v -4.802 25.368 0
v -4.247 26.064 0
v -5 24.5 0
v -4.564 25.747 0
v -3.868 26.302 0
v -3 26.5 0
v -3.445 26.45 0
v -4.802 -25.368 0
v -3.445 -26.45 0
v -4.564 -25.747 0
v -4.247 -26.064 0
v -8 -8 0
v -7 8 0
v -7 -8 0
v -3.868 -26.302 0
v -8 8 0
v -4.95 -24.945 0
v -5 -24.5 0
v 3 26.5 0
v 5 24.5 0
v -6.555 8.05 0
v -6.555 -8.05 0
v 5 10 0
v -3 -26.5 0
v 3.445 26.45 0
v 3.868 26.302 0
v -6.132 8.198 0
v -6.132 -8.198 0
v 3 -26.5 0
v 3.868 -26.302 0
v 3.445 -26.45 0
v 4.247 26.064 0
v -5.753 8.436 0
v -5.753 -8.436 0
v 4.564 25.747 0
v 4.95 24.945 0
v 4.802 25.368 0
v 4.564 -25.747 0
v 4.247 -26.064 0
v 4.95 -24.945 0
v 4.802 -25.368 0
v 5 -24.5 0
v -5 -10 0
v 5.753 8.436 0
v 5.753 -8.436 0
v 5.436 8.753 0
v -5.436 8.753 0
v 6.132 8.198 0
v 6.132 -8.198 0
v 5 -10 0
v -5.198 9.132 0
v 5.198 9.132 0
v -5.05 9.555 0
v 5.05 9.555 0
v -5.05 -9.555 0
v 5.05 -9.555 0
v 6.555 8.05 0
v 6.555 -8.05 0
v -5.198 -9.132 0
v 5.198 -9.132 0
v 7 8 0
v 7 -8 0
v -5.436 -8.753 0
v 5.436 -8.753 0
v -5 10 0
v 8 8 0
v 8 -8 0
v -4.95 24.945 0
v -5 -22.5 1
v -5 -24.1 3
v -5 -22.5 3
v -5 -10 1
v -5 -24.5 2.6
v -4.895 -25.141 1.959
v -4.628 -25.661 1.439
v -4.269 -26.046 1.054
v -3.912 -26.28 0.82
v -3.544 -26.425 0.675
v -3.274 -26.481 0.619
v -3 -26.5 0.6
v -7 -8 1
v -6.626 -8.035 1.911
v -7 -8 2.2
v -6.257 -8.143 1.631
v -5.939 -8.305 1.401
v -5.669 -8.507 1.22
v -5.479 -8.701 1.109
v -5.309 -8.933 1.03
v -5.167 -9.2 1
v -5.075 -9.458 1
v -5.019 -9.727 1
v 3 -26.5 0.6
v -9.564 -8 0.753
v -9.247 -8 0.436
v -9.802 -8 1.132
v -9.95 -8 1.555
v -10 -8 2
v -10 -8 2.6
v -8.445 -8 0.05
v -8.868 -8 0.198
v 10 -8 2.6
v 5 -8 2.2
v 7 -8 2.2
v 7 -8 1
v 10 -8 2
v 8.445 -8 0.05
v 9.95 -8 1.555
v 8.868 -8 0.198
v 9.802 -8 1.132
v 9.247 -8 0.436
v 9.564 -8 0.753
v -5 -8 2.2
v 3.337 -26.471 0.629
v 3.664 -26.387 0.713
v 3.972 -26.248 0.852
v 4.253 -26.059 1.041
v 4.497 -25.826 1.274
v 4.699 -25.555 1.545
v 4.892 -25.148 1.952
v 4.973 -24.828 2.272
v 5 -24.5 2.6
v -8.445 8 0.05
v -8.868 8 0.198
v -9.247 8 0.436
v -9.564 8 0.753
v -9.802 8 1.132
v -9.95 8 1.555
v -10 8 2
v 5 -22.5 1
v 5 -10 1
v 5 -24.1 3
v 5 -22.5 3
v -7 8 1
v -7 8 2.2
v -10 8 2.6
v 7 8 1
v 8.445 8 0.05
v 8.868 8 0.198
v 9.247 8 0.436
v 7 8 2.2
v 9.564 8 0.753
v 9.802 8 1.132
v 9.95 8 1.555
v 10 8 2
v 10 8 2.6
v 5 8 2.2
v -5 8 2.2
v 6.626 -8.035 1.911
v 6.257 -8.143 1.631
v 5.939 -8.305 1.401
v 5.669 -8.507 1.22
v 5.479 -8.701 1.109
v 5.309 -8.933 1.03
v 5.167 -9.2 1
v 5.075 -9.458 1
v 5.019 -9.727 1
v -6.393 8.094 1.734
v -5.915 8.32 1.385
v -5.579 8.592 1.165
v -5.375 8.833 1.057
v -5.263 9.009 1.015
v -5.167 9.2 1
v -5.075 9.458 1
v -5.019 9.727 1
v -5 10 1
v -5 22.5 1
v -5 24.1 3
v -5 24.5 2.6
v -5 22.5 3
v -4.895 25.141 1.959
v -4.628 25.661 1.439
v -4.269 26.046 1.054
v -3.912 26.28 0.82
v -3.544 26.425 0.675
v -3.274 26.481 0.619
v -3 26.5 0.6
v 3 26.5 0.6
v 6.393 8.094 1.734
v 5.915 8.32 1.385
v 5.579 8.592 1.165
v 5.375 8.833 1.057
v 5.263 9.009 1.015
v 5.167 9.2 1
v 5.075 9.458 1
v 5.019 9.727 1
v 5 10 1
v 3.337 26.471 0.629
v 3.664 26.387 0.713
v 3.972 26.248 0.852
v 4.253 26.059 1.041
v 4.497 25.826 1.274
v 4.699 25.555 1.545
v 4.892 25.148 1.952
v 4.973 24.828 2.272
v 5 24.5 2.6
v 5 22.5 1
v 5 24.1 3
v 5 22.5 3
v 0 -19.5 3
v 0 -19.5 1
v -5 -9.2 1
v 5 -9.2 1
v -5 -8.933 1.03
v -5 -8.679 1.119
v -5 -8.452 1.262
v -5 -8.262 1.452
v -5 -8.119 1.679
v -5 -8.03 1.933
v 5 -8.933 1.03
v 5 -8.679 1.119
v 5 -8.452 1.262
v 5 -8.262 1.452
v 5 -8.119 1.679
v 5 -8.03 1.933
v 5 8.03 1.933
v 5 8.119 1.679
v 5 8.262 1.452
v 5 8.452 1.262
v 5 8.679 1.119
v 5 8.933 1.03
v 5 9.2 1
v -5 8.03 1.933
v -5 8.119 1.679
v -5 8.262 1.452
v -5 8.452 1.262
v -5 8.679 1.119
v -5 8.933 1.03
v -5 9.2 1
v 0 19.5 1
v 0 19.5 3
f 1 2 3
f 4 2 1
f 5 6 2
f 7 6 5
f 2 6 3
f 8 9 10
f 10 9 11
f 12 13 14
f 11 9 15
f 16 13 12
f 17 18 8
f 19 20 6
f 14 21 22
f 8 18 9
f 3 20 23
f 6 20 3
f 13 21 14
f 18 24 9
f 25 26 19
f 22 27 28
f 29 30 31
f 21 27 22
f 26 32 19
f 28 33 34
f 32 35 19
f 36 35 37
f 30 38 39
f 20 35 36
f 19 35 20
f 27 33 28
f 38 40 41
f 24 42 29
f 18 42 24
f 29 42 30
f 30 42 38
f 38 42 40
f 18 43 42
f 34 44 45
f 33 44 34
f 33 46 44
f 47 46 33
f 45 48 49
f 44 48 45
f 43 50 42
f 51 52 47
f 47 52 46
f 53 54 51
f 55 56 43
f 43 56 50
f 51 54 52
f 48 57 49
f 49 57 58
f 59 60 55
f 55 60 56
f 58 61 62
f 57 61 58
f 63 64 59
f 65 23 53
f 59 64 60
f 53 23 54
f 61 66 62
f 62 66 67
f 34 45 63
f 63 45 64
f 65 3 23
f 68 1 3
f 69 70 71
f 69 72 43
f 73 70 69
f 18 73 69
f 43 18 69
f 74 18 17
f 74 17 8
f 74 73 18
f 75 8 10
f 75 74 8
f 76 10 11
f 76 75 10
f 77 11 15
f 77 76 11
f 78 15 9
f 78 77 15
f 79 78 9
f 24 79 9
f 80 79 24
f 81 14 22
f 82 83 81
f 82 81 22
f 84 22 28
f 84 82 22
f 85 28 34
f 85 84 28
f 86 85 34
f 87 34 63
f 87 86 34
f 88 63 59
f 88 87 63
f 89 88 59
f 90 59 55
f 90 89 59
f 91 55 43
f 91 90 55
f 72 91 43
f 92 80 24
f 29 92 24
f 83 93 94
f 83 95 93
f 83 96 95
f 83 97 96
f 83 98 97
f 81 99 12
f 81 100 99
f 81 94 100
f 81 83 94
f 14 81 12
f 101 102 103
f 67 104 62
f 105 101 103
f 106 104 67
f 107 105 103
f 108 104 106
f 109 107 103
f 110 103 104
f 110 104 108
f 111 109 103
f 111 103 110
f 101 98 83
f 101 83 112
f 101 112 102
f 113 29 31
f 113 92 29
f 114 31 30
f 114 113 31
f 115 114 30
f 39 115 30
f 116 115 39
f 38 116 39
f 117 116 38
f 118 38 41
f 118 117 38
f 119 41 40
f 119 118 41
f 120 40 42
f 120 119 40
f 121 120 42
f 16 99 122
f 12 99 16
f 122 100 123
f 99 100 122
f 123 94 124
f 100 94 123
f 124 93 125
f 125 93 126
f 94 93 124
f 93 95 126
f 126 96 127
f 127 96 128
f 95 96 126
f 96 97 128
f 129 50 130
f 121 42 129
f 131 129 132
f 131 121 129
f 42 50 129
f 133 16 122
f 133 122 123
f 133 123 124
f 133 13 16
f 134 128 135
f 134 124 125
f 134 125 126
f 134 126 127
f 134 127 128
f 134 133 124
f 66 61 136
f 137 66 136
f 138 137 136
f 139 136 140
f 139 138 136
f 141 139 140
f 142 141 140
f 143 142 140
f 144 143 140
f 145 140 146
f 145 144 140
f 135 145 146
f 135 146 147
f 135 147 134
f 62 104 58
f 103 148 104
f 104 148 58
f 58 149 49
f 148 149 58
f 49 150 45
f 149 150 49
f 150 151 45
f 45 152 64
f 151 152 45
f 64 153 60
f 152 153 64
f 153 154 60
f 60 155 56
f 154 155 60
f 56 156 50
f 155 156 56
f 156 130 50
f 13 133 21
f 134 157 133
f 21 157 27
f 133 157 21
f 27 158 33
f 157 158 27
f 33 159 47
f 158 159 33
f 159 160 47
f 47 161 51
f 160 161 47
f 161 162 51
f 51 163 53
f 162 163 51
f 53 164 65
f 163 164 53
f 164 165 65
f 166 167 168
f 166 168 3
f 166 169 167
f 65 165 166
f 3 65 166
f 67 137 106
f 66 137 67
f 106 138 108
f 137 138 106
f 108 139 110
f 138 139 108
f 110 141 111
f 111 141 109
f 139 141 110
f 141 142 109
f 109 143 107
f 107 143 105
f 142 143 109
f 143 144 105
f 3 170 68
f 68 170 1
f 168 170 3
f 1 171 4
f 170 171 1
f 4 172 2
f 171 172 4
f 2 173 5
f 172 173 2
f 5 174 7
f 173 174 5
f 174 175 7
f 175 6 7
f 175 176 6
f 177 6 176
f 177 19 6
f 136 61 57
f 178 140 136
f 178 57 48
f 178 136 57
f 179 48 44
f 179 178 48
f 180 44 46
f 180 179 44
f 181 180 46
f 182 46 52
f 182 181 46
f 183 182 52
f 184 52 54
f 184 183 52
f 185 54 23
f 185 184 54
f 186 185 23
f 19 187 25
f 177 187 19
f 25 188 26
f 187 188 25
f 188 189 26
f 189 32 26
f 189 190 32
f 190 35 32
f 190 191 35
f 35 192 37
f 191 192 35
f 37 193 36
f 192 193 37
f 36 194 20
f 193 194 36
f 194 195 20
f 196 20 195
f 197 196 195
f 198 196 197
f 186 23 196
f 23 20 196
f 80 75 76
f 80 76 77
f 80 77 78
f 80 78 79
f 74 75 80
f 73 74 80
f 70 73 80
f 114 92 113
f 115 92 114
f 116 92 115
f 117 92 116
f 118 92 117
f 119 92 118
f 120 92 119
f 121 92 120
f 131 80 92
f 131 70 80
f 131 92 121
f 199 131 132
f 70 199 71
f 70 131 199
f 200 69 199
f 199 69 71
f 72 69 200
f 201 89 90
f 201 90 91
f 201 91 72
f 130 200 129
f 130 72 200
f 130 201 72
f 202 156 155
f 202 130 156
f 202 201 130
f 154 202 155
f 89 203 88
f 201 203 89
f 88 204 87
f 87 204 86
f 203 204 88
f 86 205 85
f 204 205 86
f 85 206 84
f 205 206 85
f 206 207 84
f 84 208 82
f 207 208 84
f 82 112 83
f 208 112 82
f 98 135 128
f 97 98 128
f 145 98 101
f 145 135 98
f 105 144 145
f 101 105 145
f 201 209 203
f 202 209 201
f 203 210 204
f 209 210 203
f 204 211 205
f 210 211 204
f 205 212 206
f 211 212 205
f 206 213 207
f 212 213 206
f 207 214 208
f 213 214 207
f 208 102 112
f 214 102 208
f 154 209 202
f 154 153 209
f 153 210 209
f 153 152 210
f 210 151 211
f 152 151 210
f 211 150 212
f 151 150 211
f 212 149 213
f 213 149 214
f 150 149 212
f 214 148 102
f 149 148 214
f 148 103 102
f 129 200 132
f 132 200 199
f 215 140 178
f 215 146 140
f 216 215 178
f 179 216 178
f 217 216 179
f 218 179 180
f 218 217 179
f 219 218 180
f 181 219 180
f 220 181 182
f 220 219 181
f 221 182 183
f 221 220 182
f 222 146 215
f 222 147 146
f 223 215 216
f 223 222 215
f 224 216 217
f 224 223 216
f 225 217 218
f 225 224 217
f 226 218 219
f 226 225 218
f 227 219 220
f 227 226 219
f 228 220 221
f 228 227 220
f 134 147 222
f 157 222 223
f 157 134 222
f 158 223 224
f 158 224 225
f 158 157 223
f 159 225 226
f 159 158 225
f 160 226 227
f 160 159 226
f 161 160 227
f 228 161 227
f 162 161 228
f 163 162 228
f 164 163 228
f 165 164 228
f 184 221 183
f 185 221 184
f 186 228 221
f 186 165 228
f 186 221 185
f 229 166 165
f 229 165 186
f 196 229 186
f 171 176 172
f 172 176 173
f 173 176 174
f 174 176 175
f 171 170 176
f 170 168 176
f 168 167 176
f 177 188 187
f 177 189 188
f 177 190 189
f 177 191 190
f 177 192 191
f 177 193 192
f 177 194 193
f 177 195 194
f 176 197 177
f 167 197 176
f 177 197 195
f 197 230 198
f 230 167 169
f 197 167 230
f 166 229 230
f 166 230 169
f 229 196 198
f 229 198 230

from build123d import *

# Parameters (mm, degrees)
PAD_DEPTH    = 1
SKETCH001_W  = 20
SKETCH001_H  = 16
PAD001_DEPTH = 1.6
PAD002_DEPTH = 2
FILLET_R     = 2
CHAMFER_SIZE = 2.4
FILLET001_R  = 1.2
FILLET002_R  = 2
FILLET003_R  = 2


with BuildPart() as part:
    # Sketch → Pad (new body)
    with BuildSketch(Plane.XY):
        Polygon((-10, 8), (-10, -8), (-5, -8), (-5, -26.5), (5, -26.5), (5, -8), (10, -8), (10, 8), (5, 8), (5, 26.5), (-5, 26.5), (-5, 8), align=None)
    extrude(amount=PAD_DEPTH)

    # Sketch001 (on Face14 of Pad) → Pad001 (join)
    with BuildSketch(Plane.XY.offset(1)):
        Rectangle(SKETCH001_W, SKETCH001_H)
    extrude(amount=PAD001_DEPTH)

    # Sketch002 (on Face8 of Pad001) → Pad002 (join)
    with BuildSketch(Plane.XY.offset(1)):
        Polygon((-5, 26.5), (5, 26.5), (5, 22.5), (0, 19.5), (-5, 22.5), align=None)
    pad002 = extrude(amount=PAD002_DEPTH)

    # Mirrored: Pad002 across Sketch002 H_Axis
    add(pad002.mirror(Plane(origin=(0, 0, 1), x_dir=(0, 0, 1), z_dir=(0, 1, 0))))

    # Fillet
    fillet_edges = [part.edges().sort_by_distance(p)[0] for p in [
        (5, -8, 0.5),
        (-5, -8, 0.5),
        (-5, 8, 0.5),
        (5, 8, 0.5),
    ]]
    fillet(fillet_edges, radius=FILLET_R)

    # Chamfer
    chamfer_edges = [part.edges().sort_by_distance(p)[0] for p in [
        (0, 26.5, 3),
        (0, -26.5, 3),
    ]]
    chamfer(chamfer_edges, length=CHAMFER_SIZE)

    # Fillet001
    fillet001_edges = [part.edges().sort_by_distance(p)[0] for p in [
        (0, 8, 1),
        (0, -8, 1),
    ]]
    fillet(fillet001_edges, radius=FILLET001_R)

    # Fillet002
    fillet002_edges = [part.edges().sort_by_distance(p)[0] for p in [
        (10, 0, 0),
        (-10, 0, 0),
    ]]
    fillet(fillet002_edges, radius=FILLET002_R)

    # Fillet003
    fillet003_edges = [part.edges().sort_by_distance(p)[0] for p in [
        (-5, -26.5, 0.3),
        (5, -26.5, 0.3),
        (-5, 26.5, 0.3),
        (5, 26.5, 0.3),
    ]]
    fillet(fillet003_edges, radius=FILLET003_R)


solid = part.part
